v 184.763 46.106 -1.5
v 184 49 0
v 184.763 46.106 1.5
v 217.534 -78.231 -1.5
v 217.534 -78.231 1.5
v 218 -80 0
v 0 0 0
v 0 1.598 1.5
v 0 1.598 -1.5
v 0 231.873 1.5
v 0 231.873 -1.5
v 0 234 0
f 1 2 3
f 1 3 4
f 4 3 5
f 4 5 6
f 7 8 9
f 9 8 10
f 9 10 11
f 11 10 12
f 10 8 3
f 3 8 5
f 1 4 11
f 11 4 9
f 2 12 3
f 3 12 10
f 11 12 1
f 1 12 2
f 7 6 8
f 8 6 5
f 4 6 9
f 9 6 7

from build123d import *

# Parameters (mm, degrees)
BOSS_EXTRUDE1_DEPTH = 1.5
CHAMFER1_SIZE       = 1.5


with BuildPart() as part:
    # Sketch1 → Boss-Extrude1 (new, symmetric)
    with BuildSketch(Plane.XY):
        Polygon((0, 0), (0, 234), (184, 49), (218, -80), align=None)
    extrude(amount=BOSS_EXTRUDE1_DEPTH, both=True)

    # Chamfer1
    # the kernel refuses this chamfer: 1.5 mm, written as the material it takes off along each edge
    with BuildSketch(Plane(origin=(-2.720279639, 236.735063768, -1.5), x_dir=(0.01949513897586929, 0.01938975984627006, 0.9996219169112969), z_dir=(0.7051879131144355, -0.7090204561204898, 0)), Plane(origin=(-2.720279639, 236.735063768, 1.5), x_dir=(-0.708752387476486, -0.704921293490129, 0.027495876610586337), z_dir=(0.7051879131144355, -0.7090204561204898, 0))) as chamfer1_piece_1:
        Polygon((CHAMFER1_SIZE * 0.999621916911, CHAMFER1_SIZE * 0.0274958766106), (-CHAMFER1_SIZE * 0.0274958766106, CHAMFER1_SIZE * 0.999621916911), (0, 0), align=None)
    extrude(amount=268.638409359, mode=Mode.SUBTRACT)
    with BuildSketch(Plane(origin=(221.621380299, -81.328946899, -1.5), x_dir=(0.3443774504996801, 0.9384285526116285, -0.0274958766105866), z_dir=(-0.9387834907734437, 0.34450770303612605, 0))) as chamfer1_piece_2:
        Polygon((CHAMFER1_SIZE * 0.999621916911, -CHAMFER1_SIZE * 0.0274958766106), (-CHAMFER1_SIZE * 0.0274958766106, -CHAMFER1_SIZE * 0.999621916911), (0, 0), align=None)
    extrude(amount=239.930466195, mode=Mode.SUBTRACT)
    with BuildSketch(Plane(origin=(221.621380299, -81.328946899, 1.5), x_dir=(0.3443774504996801, 0.9384285526116285, 0.0274958766105866), z_dir=(-0.9387834907734437, 0.34450770303612605, 0))) as chamfer1_piece_3:
        Polygon((CHAMFER1_SIZE * 0.999621916911, CHAMFER1_SIZE * 0.0274958766106), (-CHAMFER1_SIZE * 0.0274958766106, CHAMFER1_SIZE * 0.999621916911), (0, 0), align=None)
    extrude(amount=239.930466195, mode=Mode.SUBTRACT)


solid = part.part
